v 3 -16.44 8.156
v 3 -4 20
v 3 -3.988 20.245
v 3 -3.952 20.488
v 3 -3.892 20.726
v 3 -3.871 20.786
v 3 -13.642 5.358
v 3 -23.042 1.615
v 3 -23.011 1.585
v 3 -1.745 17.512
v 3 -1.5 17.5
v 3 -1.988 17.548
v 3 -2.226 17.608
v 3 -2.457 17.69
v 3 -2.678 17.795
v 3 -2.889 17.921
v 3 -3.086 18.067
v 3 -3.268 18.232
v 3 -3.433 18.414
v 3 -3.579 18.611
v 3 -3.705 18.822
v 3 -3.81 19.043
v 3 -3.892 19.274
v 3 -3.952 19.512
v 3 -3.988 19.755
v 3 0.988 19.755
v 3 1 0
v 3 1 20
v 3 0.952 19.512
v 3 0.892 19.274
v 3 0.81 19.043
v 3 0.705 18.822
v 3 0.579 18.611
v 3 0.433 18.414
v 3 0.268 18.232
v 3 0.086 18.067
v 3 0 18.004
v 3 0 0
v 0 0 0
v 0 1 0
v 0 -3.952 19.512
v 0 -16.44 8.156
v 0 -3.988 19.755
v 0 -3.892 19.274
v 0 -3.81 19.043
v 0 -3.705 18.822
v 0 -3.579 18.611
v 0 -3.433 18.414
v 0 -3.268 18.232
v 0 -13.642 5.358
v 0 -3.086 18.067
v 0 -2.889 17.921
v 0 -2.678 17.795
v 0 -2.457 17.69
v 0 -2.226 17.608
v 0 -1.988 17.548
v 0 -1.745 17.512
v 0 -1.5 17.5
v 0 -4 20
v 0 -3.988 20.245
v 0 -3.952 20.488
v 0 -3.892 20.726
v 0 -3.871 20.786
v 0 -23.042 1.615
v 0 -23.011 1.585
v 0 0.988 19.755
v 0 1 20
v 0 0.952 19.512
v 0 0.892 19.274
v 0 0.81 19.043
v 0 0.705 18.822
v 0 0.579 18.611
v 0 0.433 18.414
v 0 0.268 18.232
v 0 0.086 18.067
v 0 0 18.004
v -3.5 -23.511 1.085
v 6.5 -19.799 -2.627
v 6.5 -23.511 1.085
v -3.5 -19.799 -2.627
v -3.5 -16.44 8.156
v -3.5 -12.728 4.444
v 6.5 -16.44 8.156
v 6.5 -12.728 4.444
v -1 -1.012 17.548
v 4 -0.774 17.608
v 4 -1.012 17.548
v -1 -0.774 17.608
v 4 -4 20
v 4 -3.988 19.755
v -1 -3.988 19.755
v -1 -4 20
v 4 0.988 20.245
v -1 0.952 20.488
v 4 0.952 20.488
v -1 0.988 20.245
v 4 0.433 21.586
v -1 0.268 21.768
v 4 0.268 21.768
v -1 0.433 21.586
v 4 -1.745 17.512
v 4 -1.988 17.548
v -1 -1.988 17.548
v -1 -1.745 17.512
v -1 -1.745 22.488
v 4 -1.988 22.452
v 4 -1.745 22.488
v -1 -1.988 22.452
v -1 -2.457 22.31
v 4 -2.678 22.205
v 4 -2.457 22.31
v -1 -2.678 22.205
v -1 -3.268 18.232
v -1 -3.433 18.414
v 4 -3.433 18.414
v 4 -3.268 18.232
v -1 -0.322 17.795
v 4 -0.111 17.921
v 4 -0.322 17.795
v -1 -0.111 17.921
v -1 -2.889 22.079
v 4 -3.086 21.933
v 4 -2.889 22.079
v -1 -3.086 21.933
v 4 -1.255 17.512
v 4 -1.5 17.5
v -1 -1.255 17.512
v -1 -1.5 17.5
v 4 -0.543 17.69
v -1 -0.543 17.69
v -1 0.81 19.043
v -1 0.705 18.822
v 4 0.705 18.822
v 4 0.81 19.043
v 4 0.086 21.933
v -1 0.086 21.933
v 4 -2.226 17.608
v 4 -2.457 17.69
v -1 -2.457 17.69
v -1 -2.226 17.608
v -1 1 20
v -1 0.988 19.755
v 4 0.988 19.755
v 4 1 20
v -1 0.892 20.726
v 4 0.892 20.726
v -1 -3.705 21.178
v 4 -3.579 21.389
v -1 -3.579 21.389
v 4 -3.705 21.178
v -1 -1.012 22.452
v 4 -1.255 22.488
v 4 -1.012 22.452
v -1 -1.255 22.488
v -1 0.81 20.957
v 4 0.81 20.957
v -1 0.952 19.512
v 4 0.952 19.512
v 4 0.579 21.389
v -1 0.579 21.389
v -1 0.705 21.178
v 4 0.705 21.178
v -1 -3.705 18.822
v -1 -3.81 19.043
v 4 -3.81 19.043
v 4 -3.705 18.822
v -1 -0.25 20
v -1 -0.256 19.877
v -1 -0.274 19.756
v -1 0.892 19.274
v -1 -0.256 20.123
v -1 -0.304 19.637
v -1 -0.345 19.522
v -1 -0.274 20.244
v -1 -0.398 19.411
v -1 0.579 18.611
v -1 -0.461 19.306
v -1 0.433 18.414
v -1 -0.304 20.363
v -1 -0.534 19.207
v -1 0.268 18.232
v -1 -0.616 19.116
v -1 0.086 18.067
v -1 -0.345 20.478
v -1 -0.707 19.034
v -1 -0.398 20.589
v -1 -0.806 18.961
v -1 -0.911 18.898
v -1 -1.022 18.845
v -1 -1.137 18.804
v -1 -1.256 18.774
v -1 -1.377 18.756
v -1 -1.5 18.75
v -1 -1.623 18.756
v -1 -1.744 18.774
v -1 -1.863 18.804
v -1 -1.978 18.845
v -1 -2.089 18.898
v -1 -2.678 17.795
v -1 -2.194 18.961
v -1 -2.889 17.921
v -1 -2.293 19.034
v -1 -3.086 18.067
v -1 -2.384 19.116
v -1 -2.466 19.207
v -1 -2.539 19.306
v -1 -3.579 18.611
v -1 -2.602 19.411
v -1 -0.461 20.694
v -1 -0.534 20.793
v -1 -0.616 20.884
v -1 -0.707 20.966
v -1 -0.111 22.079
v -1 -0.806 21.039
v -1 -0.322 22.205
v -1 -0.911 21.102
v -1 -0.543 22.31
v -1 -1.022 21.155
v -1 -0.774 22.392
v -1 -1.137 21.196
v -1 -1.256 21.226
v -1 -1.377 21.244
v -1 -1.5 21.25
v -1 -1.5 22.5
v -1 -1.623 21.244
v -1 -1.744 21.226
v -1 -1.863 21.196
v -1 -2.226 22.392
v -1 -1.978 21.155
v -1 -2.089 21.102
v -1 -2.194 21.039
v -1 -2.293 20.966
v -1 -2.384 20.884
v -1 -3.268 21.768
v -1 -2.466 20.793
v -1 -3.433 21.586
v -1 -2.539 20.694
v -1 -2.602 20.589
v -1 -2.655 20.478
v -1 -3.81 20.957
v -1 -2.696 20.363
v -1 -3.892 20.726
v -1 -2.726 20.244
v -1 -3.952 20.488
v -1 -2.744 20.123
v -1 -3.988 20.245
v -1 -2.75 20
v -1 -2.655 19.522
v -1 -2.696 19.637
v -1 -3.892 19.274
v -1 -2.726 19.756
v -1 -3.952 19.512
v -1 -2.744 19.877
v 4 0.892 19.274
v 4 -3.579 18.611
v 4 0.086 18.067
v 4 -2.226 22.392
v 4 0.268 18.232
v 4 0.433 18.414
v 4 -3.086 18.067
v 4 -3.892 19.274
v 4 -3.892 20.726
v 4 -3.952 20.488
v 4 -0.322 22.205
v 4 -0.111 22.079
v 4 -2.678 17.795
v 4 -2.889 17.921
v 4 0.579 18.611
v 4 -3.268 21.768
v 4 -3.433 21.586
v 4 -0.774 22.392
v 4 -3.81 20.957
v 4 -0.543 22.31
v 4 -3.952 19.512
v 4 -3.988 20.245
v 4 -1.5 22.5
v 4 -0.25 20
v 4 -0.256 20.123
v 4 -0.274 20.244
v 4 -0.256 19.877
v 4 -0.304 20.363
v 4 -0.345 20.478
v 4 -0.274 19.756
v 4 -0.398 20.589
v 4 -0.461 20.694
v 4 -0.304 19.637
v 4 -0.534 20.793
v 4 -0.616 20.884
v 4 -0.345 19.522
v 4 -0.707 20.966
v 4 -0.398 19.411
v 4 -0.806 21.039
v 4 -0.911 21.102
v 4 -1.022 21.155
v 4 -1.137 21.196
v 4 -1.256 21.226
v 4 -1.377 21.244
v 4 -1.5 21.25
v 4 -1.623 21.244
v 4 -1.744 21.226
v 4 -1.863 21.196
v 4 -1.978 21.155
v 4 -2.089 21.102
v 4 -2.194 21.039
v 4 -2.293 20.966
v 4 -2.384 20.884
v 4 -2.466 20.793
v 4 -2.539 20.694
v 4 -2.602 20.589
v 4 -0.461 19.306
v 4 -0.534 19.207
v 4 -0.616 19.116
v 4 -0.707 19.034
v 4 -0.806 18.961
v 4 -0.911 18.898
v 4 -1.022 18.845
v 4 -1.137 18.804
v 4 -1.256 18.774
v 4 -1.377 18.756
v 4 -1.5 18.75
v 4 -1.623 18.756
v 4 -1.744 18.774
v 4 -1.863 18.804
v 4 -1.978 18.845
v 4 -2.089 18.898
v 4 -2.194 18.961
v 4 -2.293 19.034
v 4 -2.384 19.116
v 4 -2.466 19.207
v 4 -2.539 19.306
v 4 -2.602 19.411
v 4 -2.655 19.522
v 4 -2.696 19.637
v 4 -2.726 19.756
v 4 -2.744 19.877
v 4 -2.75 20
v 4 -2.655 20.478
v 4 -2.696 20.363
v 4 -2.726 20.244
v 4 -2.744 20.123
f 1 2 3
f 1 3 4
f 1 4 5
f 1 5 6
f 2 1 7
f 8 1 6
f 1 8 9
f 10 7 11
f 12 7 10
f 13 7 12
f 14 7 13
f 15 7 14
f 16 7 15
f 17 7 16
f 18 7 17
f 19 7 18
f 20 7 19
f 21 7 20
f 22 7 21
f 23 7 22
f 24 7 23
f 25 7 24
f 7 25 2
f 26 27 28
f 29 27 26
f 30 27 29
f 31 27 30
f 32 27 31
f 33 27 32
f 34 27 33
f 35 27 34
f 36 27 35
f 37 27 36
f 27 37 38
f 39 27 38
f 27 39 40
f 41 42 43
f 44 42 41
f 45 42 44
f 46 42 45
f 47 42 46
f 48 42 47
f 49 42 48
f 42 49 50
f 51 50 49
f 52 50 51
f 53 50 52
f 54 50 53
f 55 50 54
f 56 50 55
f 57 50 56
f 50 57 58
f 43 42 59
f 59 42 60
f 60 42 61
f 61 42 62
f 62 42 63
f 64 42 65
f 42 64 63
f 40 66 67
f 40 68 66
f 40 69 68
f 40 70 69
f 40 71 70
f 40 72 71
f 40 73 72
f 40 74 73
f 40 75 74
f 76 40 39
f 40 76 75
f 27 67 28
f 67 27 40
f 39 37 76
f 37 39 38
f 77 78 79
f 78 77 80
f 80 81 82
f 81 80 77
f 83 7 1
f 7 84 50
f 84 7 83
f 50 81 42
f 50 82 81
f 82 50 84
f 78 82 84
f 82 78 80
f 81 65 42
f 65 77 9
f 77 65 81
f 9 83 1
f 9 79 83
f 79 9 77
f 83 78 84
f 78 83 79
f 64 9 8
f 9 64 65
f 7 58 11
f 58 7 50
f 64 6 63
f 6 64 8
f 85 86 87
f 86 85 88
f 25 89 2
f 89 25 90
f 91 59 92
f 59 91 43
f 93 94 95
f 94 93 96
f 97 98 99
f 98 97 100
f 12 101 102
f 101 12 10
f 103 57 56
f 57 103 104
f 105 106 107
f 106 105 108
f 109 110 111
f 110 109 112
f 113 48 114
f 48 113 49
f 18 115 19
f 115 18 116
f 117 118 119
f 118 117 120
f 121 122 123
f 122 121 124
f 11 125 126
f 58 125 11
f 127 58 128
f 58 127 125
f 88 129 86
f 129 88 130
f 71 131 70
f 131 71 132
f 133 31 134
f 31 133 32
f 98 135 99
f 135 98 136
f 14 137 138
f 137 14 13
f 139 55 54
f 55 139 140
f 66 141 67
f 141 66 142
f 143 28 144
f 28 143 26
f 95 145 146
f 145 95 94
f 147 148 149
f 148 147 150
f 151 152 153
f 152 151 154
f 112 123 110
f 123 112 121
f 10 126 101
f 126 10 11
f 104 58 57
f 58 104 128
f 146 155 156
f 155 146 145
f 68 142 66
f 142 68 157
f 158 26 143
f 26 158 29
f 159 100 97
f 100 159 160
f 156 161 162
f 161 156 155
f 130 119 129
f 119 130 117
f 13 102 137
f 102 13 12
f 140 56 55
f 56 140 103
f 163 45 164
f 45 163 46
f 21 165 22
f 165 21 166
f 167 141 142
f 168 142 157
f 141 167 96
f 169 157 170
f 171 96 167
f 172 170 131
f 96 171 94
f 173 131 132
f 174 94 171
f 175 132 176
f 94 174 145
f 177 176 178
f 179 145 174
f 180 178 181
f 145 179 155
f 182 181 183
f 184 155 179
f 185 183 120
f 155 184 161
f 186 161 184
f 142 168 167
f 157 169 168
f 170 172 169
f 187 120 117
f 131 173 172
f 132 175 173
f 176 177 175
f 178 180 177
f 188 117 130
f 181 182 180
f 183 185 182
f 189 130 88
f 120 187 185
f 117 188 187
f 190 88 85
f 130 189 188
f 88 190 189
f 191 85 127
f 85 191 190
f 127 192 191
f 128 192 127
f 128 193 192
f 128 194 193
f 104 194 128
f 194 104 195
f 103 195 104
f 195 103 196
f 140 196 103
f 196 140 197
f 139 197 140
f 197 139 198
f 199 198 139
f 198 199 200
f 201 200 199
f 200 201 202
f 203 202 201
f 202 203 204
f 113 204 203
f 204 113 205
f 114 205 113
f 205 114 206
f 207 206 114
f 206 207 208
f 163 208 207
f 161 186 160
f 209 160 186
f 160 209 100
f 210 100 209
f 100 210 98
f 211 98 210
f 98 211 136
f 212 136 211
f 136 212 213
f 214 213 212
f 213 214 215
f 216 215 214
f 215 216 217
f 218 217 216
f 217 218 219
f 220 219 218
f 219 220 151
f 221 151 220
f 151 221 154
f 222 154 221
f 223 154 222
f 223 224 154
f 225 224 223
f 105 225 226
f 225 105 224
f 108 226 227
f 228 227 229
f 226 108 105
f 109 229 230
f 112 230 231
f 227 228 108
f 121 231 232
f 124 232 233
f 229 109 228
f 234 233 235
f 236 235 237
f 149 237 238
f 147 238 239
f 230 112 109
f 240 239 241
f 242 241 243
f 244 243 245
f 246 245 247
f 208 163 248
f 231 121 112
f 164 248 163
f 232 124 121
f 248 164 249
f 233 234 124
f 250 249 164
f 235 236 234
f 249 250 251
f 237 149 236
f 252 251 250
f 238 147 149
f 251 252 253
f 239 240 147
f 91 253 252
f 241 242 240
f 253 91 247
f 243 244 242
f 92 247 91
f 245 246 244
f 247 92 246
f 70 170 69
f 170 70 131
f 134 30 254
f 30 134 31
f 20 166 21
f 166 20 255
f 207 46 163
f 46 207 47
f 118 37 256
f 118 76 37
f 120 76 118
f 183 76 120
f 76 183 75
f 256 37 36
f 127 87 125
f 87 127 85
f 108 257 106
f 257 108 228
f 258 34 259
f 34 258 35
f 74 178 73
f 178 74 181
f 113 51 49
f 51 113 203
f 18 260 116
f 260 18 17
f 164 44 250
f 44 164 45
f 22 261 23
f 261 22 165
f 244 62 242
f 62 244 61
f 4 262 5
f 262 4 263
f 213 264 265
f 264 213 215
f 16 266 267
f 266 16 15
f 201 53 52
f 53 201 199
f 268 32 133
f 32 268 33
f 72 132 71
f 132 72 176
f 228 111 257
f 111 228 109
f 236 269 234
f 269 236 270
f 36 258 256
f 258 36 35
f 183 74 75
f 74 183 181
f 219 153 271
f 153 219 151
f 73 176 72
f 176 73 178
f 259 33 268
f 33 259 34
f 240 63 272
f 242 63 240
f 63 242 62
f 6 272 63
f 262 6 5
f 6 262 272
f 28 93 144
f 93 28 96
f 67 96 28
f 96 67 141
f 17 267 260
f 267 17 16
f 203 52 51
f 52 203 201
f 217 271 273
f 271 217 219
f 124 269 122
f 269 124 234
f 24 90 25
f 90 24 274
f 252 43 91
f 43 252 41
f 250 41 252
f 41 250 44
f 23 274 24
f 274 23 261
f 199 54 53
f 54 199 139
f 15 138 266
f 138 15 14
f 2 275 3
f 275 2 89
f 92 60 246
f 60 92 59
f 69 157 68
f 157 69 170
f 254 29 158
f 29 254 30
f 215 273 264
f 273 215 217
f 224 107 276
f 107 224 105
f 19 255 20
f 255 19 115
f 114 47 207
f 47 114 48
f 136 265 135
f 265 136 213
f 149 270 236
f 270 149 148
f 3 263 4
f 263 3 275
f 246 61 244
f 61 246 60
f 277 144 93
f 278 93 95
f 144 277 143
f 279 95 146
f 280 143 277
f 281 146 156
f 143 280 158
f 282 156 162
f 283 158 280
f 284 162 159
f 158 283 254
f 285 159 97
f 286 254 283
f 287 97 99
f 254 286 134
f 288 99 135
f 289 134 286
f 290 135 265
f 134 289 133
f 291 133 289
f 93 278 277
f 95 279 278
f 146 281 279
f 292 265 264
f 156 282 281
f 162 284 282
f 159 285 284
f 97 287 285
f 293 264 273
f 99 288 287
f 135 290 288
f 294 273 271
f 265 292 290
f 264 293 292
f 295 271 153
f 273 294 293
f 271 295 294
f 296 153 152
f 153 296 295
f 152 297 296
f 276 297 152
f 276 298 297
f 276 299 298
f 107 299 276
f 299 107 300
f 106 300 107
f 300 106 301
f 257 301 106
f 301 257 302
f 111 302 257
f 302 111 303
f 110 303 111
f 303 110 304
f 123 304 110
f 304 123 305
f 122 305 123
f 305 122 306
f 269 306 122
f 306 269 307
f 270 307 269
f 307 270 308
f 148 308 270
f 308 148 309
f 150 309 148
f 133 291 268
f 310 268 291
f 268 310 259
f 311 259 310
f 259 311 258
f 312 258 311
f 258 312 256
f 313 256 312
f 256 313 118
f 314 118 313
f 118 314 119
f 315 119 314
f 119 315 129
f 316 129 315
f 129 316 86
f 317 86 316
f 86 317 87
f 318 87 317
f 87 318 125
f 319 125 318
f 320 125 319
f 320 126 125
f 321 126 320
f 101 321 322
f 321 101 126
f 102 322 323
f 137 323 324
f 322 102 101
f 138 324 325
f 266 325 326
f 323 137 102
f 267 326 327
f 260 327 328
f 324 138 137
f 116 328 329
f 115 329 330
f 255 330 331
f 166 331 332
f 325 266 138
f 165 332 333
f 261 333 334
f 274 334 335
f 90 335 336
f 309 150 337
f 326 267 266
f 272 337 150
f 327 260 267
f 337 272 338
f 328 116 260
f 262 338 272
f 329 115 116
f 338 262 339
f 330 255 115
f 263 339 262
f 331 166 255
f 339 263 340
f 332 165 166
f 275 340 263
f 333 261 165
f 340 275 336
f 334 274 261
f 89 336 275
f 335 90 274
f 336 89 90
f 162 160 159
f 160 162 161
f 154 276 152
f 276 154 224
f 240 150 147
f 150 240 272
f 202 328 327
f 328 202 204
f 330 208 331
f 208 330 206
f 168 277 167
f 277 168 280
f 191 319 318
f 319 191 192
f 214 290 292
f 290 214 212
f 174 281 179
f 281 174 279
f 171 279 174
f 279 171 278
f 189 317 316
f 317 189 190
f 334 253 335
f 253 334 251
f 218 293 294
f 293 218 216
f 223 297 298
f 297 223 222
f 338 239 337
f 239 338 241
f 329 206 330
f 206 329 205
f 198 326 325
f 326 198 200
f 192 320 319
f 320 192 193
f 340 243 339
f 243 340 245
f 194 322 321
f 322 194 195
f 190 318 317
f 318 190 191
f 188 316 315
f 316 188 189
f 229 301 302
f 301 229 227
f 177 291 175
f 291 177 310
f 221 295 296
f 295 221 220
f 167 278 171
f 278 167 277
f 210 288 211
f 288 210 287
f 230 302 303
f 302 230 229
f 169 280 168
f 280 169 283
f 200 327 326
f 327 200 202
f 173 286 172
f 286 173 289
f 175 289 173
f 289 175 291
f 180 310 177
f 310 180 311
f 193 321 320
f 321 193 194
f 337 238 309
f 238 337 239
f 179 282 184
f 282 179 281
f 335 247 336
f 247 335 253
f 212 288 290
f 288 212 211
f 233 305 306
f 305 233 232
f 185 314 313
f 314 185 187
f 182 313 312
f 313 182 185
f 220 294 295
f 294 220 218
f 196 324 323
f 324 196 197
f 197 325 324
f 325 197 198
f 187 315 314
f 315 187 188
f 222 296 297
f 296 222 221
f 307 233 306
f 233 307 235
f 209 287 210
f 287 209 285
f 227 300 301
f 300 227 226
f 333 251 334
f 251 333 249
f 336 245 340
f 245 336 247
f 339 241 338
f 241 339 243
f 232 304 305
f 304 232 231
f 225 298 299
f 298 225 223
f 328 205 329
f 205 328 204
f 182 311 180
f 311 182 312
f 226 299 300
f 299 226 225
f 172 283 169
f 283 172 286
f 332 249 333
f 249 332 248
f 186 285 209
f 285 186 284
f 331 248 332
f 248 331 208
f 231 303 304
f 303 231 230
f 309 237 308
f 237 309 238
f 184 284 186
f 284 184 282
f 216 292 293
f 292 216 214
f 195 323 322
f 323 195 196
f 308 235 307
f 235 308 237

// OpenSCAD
difference(){
union(){
cube([3,1,20]);

translate([-5+3/2,0,20])
rotate([180-45,0,0])
translate([0,-2,20])
cube([10,5.25,10]);

translate([0,1,20])
rotate([180-45,0,0])
translate([0,0,1])
cube([3,4,29]);

translate([-1,-1.5,20])
rotate([0,90,0])
cylinder(d=5,h=5,$fn=64);
}
translate([-5,-1.5,20])
rotate([0,90,0])
cylinder(d=2.5,h=15,$fn=64);
}
